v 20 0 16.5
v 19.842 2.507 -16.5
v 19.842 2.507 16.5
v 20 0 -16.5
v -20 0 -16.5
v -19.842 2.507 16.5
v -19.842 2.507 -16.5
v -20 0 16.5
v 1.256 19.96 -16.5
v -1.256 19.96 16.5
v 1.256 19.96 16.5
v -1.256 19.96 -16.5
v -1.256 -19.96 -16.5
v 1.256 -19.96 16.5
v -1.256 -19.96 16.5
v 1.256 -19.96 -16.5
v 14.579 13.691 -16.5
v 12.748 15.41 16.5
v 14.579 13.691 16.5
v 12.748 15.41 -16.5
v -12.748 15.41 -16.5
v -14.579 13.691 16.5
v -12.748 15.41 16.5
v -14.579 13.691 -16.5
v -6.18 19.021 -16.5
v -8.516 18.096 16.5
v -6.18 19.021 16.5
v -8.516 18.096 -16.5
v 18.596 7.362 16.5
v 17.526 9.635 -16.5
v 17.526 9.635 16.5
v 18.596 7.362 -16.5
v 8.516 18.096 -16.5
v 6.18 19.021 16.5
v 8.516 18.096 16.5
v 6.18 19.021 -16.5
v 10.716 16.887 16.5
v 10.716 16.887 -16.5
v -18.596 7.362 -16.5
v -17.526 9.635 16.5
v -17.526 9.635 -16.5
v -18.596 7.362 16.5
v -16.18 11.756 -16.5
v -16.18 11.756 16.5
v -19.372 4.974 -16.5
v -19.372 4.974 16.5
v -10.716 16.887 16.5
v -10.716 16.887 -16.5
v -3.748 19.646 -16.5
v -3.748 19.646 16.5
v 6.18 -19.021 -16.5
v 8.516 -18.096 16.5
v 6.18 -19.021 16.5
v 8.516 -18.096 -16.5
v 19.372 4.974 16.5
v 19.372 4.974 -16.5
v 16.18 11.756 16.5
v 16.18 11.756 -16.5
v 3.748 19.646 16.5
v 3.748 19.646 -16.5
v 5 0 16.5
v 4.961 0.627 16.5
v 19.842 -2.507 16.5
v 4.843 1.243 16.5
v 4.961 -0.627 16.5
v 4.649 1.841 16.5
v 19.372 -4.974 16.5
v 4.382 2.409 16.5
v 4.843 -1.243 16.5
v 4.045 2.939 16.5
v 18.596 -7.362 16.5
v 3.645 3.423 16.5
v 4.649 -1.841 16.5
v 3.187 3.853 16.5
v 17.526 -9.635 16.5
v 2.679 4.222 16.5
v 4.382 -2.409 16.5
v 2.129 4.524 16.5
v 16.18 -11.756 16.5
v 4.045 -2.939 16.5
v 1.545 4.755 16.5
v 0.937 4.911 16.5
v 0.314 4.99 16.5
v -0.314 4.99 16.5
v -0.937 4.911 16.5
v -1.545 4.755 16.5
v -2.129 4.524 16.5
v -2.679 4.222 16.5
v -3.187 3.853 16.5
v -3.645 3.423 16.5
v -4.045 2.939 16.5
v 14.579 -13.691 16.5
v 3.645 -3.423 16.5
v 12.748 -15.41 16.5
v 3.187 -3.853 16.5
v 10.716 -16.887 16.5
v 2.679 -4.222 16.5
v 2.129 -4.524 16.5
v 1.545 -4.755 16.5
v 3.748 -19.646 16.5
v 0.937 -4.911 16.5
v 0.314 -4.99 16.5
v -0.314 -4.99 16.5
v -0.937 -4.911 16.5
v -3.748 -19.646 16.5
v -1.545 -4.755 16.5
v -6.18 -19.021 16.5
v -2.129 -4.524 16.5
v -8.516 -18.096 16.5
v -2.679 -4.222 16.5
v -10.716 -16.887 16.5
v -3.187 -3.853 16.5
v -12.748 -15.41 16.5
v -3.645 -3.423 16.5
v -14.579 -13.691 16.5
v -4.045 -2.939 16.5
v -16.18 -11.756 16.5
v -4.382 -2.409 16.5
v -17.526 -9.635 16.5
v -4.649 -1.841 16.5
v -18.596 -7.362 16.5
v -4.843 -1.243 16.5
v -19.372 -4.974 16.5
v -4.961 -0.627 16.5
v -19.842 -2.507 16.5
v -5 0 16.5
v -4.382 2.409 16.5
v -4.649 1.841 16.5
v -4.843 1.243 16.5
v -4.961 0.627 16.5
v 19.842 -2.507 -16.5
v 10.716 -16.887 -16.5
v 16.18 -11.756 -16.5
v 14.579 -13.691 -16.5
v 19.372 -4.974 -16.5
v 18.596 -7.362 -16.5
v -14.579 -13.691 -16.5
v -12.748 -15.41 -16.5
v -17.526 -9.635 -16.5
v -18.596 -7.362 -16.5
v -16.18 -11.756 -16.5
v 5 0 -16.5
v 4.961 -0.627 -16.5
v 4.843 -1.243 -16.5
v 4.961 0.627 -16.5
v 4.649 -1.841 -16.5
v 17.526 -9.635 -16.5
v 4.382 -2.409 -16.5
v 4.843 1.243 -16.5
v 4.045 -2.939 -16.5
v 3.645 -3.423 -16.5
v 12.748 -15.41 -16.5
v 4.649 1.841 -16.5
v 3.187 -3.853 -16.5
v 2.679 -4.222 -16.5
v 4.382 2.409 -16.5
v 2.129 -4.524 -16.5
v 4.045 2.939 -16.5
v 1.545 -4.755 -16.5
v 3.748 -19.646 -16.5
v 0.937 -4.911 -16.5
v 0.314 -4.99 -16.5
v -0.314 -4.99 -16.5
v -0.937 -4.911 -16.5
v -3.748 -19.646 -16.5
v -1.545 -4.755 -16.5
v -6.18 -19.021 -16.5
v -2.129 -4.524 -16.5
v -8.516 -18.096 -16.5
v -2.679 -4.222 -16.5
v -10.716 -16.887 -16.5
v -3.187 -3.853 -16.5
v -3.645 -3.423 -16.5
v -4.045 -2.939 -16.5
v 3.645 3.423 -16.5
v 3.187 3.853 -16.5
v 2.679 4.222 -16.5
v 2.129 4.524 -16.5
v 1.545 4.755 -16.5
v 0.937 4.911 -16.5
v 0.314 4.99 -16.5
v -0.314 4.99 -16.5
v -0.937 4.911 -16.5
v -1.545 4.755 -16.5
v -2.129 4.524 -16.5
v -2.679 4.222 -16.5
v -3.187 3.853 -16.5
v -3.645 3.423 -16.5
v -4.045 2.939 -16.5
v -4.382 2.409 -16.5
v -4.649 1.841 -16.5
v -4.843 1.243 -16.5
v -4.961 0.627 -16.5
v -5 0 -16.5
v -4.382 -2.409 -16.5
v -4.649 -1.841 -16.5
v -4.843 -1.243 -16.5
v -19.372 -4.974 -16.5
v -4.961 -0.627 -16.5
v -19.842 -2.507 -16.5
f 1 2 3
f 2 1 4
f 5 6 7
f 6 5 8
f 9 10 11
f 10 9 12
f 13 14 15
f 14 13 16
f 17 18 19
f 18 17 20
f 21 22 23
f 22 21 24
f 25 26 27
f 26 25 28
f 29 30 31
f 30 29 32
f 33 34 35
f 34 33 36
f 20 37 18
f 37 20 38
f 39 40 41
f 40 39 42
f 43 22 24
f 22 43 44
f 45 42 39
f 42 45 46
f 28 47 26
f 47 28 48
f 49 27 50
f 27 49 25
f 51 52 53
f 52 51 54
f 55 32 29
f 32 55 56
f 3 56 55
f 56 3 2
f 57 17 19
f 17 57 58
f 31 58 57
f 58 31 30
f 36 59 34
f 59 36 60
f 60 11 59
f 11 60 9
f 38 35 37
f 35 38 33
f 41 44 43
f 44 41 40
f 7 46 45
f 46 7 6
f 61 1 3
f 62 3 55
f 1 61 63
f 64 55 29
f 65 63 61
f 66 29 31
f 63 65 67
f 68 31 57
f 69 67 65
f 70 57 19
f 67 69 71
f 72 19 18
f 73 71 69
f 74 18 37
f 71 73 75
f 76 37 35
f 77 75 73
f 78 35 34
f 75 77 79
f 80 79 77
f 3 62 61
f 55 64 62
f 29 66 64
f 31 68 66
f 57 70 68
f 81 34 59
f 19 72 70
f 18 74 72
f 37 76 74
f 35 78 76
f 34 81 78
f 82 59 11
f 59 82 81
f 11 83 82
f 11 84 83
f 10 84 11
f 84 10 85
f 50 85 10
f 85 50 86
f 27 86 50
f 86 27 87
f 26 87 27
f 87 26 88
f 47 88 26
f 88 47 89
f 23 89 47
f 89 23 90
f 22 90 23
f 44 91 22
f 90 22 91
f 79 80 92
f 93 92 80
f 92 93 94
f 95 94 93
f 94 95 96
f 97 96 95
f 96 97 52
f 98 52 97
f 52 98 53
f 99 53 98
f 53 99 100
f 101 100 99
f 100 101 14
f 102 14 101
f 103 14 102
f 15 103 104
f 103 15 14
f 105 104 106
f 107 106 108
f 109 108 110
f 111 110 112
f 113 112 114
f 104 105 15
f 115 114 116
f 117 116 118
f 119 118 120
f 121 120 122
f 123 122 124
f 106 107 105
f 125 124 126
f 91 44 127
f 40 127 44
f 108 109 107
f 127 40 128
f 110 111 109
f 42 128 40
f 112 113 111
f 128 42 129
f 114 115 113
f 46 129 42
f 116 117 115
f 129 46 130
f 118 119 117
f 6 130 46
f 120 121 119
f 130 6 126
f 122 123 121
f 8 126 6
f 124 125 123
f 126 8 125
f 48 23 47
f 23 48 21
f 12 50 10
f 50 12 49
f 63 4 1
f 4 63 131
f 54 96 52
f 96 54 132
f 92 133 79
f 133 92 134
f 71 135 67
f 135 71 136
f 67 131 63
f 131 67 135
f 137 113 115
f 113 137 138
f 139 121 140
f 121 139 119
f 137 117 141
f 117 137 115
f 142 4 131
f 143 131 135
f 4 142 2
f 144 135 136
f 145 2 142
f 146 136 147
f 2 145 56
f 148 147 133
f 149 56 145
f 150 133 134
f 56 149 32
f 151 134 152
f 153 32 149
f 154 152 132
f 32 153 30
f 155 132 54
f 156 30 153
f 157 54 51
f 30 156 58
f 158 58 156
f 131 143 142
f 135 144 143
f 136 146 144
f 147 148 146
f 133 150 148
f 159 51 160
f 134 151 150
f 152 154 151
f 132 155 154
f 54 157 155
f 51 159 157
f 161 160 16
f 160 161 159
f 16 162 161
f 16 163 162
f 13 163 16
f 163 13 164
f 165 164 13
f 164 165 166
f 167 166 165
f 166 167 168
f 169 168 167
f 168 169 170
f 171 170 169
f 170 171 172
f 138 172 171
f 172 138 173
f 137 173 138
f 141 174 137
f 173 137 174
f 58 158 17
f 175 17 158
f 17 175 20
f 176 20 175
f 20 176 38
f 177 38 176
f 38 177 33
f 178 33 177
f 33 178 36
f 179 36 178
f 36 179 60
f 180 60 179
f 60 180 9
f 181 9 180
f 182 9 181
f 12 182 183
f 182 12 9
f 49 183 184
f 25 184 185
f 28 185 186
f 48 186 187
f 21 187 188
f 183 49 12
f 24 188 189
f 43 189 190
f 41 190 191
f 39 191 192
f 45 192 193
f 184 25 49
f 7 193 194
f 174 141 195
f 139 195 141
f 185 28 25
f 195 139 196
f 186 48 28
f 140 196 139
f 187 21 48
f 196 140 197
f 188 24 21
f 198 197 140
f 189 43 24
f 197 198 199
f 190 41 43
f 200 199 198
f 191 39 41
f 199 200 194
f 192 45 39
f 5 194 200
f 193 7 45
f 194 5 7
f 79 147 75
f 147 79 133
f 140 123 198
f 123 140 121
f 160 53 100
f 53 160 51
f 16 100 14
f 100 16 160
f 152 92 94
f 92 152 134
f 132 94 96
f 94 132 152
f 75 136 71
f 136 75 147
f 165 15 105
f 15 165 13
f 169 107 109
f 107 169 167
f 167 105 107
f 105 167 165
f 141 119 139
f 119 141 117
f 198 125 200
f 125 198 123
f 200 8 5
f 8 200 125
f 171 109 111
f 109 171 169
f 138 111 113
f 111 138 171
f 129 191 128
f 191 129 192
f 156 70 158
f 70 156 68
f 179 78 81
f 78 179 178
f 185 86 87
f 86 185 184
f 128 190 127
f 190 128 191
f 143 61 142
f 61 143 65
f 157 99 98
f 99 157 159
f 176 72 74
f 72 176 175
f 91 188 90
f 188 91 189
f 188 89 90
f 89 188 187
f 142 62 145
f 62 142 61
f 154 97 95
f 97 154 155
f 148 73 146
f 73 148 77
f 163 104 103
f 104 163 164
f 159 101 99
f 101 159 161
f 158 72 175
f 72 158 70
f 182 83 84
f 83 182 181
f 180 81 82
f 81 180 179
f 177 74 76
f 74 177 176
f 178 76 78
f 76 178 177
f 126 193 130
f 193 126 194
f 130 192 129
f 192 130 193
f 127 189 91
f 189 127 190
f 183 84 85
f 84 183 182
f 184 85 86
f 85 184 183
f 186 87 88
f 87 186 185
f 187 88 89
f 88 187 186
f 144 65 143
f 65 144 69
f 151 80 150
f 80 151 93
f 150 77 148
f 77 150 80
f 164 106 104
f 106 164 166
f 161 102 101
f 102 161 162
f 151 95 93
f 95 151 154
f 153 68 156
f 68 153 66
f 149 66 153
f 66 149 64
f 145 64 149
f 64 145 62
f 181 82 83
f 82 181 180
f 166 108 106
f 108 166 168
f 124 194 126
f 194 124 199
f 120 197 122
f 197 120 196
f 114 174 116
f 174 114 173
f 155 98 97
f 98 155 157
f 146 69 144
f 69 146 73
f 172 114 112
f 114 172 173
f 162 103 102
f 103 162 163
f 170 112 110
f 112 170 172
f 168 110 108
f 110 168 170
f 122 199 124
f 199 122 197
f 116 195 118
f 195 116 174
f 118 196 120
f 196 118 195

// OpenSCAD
$fn = 50;


difference() {
	union() {
		translate(v = [0, 0, -16.5000000000]) {
			cylinder(h = 33, r = 20.0000000000);
		}
	}
	union() {
		translate(v = [0, 0, -100.0000000000]) {
			cylinder(h = 200, r = 5.0000000000);
		}
	}
}
